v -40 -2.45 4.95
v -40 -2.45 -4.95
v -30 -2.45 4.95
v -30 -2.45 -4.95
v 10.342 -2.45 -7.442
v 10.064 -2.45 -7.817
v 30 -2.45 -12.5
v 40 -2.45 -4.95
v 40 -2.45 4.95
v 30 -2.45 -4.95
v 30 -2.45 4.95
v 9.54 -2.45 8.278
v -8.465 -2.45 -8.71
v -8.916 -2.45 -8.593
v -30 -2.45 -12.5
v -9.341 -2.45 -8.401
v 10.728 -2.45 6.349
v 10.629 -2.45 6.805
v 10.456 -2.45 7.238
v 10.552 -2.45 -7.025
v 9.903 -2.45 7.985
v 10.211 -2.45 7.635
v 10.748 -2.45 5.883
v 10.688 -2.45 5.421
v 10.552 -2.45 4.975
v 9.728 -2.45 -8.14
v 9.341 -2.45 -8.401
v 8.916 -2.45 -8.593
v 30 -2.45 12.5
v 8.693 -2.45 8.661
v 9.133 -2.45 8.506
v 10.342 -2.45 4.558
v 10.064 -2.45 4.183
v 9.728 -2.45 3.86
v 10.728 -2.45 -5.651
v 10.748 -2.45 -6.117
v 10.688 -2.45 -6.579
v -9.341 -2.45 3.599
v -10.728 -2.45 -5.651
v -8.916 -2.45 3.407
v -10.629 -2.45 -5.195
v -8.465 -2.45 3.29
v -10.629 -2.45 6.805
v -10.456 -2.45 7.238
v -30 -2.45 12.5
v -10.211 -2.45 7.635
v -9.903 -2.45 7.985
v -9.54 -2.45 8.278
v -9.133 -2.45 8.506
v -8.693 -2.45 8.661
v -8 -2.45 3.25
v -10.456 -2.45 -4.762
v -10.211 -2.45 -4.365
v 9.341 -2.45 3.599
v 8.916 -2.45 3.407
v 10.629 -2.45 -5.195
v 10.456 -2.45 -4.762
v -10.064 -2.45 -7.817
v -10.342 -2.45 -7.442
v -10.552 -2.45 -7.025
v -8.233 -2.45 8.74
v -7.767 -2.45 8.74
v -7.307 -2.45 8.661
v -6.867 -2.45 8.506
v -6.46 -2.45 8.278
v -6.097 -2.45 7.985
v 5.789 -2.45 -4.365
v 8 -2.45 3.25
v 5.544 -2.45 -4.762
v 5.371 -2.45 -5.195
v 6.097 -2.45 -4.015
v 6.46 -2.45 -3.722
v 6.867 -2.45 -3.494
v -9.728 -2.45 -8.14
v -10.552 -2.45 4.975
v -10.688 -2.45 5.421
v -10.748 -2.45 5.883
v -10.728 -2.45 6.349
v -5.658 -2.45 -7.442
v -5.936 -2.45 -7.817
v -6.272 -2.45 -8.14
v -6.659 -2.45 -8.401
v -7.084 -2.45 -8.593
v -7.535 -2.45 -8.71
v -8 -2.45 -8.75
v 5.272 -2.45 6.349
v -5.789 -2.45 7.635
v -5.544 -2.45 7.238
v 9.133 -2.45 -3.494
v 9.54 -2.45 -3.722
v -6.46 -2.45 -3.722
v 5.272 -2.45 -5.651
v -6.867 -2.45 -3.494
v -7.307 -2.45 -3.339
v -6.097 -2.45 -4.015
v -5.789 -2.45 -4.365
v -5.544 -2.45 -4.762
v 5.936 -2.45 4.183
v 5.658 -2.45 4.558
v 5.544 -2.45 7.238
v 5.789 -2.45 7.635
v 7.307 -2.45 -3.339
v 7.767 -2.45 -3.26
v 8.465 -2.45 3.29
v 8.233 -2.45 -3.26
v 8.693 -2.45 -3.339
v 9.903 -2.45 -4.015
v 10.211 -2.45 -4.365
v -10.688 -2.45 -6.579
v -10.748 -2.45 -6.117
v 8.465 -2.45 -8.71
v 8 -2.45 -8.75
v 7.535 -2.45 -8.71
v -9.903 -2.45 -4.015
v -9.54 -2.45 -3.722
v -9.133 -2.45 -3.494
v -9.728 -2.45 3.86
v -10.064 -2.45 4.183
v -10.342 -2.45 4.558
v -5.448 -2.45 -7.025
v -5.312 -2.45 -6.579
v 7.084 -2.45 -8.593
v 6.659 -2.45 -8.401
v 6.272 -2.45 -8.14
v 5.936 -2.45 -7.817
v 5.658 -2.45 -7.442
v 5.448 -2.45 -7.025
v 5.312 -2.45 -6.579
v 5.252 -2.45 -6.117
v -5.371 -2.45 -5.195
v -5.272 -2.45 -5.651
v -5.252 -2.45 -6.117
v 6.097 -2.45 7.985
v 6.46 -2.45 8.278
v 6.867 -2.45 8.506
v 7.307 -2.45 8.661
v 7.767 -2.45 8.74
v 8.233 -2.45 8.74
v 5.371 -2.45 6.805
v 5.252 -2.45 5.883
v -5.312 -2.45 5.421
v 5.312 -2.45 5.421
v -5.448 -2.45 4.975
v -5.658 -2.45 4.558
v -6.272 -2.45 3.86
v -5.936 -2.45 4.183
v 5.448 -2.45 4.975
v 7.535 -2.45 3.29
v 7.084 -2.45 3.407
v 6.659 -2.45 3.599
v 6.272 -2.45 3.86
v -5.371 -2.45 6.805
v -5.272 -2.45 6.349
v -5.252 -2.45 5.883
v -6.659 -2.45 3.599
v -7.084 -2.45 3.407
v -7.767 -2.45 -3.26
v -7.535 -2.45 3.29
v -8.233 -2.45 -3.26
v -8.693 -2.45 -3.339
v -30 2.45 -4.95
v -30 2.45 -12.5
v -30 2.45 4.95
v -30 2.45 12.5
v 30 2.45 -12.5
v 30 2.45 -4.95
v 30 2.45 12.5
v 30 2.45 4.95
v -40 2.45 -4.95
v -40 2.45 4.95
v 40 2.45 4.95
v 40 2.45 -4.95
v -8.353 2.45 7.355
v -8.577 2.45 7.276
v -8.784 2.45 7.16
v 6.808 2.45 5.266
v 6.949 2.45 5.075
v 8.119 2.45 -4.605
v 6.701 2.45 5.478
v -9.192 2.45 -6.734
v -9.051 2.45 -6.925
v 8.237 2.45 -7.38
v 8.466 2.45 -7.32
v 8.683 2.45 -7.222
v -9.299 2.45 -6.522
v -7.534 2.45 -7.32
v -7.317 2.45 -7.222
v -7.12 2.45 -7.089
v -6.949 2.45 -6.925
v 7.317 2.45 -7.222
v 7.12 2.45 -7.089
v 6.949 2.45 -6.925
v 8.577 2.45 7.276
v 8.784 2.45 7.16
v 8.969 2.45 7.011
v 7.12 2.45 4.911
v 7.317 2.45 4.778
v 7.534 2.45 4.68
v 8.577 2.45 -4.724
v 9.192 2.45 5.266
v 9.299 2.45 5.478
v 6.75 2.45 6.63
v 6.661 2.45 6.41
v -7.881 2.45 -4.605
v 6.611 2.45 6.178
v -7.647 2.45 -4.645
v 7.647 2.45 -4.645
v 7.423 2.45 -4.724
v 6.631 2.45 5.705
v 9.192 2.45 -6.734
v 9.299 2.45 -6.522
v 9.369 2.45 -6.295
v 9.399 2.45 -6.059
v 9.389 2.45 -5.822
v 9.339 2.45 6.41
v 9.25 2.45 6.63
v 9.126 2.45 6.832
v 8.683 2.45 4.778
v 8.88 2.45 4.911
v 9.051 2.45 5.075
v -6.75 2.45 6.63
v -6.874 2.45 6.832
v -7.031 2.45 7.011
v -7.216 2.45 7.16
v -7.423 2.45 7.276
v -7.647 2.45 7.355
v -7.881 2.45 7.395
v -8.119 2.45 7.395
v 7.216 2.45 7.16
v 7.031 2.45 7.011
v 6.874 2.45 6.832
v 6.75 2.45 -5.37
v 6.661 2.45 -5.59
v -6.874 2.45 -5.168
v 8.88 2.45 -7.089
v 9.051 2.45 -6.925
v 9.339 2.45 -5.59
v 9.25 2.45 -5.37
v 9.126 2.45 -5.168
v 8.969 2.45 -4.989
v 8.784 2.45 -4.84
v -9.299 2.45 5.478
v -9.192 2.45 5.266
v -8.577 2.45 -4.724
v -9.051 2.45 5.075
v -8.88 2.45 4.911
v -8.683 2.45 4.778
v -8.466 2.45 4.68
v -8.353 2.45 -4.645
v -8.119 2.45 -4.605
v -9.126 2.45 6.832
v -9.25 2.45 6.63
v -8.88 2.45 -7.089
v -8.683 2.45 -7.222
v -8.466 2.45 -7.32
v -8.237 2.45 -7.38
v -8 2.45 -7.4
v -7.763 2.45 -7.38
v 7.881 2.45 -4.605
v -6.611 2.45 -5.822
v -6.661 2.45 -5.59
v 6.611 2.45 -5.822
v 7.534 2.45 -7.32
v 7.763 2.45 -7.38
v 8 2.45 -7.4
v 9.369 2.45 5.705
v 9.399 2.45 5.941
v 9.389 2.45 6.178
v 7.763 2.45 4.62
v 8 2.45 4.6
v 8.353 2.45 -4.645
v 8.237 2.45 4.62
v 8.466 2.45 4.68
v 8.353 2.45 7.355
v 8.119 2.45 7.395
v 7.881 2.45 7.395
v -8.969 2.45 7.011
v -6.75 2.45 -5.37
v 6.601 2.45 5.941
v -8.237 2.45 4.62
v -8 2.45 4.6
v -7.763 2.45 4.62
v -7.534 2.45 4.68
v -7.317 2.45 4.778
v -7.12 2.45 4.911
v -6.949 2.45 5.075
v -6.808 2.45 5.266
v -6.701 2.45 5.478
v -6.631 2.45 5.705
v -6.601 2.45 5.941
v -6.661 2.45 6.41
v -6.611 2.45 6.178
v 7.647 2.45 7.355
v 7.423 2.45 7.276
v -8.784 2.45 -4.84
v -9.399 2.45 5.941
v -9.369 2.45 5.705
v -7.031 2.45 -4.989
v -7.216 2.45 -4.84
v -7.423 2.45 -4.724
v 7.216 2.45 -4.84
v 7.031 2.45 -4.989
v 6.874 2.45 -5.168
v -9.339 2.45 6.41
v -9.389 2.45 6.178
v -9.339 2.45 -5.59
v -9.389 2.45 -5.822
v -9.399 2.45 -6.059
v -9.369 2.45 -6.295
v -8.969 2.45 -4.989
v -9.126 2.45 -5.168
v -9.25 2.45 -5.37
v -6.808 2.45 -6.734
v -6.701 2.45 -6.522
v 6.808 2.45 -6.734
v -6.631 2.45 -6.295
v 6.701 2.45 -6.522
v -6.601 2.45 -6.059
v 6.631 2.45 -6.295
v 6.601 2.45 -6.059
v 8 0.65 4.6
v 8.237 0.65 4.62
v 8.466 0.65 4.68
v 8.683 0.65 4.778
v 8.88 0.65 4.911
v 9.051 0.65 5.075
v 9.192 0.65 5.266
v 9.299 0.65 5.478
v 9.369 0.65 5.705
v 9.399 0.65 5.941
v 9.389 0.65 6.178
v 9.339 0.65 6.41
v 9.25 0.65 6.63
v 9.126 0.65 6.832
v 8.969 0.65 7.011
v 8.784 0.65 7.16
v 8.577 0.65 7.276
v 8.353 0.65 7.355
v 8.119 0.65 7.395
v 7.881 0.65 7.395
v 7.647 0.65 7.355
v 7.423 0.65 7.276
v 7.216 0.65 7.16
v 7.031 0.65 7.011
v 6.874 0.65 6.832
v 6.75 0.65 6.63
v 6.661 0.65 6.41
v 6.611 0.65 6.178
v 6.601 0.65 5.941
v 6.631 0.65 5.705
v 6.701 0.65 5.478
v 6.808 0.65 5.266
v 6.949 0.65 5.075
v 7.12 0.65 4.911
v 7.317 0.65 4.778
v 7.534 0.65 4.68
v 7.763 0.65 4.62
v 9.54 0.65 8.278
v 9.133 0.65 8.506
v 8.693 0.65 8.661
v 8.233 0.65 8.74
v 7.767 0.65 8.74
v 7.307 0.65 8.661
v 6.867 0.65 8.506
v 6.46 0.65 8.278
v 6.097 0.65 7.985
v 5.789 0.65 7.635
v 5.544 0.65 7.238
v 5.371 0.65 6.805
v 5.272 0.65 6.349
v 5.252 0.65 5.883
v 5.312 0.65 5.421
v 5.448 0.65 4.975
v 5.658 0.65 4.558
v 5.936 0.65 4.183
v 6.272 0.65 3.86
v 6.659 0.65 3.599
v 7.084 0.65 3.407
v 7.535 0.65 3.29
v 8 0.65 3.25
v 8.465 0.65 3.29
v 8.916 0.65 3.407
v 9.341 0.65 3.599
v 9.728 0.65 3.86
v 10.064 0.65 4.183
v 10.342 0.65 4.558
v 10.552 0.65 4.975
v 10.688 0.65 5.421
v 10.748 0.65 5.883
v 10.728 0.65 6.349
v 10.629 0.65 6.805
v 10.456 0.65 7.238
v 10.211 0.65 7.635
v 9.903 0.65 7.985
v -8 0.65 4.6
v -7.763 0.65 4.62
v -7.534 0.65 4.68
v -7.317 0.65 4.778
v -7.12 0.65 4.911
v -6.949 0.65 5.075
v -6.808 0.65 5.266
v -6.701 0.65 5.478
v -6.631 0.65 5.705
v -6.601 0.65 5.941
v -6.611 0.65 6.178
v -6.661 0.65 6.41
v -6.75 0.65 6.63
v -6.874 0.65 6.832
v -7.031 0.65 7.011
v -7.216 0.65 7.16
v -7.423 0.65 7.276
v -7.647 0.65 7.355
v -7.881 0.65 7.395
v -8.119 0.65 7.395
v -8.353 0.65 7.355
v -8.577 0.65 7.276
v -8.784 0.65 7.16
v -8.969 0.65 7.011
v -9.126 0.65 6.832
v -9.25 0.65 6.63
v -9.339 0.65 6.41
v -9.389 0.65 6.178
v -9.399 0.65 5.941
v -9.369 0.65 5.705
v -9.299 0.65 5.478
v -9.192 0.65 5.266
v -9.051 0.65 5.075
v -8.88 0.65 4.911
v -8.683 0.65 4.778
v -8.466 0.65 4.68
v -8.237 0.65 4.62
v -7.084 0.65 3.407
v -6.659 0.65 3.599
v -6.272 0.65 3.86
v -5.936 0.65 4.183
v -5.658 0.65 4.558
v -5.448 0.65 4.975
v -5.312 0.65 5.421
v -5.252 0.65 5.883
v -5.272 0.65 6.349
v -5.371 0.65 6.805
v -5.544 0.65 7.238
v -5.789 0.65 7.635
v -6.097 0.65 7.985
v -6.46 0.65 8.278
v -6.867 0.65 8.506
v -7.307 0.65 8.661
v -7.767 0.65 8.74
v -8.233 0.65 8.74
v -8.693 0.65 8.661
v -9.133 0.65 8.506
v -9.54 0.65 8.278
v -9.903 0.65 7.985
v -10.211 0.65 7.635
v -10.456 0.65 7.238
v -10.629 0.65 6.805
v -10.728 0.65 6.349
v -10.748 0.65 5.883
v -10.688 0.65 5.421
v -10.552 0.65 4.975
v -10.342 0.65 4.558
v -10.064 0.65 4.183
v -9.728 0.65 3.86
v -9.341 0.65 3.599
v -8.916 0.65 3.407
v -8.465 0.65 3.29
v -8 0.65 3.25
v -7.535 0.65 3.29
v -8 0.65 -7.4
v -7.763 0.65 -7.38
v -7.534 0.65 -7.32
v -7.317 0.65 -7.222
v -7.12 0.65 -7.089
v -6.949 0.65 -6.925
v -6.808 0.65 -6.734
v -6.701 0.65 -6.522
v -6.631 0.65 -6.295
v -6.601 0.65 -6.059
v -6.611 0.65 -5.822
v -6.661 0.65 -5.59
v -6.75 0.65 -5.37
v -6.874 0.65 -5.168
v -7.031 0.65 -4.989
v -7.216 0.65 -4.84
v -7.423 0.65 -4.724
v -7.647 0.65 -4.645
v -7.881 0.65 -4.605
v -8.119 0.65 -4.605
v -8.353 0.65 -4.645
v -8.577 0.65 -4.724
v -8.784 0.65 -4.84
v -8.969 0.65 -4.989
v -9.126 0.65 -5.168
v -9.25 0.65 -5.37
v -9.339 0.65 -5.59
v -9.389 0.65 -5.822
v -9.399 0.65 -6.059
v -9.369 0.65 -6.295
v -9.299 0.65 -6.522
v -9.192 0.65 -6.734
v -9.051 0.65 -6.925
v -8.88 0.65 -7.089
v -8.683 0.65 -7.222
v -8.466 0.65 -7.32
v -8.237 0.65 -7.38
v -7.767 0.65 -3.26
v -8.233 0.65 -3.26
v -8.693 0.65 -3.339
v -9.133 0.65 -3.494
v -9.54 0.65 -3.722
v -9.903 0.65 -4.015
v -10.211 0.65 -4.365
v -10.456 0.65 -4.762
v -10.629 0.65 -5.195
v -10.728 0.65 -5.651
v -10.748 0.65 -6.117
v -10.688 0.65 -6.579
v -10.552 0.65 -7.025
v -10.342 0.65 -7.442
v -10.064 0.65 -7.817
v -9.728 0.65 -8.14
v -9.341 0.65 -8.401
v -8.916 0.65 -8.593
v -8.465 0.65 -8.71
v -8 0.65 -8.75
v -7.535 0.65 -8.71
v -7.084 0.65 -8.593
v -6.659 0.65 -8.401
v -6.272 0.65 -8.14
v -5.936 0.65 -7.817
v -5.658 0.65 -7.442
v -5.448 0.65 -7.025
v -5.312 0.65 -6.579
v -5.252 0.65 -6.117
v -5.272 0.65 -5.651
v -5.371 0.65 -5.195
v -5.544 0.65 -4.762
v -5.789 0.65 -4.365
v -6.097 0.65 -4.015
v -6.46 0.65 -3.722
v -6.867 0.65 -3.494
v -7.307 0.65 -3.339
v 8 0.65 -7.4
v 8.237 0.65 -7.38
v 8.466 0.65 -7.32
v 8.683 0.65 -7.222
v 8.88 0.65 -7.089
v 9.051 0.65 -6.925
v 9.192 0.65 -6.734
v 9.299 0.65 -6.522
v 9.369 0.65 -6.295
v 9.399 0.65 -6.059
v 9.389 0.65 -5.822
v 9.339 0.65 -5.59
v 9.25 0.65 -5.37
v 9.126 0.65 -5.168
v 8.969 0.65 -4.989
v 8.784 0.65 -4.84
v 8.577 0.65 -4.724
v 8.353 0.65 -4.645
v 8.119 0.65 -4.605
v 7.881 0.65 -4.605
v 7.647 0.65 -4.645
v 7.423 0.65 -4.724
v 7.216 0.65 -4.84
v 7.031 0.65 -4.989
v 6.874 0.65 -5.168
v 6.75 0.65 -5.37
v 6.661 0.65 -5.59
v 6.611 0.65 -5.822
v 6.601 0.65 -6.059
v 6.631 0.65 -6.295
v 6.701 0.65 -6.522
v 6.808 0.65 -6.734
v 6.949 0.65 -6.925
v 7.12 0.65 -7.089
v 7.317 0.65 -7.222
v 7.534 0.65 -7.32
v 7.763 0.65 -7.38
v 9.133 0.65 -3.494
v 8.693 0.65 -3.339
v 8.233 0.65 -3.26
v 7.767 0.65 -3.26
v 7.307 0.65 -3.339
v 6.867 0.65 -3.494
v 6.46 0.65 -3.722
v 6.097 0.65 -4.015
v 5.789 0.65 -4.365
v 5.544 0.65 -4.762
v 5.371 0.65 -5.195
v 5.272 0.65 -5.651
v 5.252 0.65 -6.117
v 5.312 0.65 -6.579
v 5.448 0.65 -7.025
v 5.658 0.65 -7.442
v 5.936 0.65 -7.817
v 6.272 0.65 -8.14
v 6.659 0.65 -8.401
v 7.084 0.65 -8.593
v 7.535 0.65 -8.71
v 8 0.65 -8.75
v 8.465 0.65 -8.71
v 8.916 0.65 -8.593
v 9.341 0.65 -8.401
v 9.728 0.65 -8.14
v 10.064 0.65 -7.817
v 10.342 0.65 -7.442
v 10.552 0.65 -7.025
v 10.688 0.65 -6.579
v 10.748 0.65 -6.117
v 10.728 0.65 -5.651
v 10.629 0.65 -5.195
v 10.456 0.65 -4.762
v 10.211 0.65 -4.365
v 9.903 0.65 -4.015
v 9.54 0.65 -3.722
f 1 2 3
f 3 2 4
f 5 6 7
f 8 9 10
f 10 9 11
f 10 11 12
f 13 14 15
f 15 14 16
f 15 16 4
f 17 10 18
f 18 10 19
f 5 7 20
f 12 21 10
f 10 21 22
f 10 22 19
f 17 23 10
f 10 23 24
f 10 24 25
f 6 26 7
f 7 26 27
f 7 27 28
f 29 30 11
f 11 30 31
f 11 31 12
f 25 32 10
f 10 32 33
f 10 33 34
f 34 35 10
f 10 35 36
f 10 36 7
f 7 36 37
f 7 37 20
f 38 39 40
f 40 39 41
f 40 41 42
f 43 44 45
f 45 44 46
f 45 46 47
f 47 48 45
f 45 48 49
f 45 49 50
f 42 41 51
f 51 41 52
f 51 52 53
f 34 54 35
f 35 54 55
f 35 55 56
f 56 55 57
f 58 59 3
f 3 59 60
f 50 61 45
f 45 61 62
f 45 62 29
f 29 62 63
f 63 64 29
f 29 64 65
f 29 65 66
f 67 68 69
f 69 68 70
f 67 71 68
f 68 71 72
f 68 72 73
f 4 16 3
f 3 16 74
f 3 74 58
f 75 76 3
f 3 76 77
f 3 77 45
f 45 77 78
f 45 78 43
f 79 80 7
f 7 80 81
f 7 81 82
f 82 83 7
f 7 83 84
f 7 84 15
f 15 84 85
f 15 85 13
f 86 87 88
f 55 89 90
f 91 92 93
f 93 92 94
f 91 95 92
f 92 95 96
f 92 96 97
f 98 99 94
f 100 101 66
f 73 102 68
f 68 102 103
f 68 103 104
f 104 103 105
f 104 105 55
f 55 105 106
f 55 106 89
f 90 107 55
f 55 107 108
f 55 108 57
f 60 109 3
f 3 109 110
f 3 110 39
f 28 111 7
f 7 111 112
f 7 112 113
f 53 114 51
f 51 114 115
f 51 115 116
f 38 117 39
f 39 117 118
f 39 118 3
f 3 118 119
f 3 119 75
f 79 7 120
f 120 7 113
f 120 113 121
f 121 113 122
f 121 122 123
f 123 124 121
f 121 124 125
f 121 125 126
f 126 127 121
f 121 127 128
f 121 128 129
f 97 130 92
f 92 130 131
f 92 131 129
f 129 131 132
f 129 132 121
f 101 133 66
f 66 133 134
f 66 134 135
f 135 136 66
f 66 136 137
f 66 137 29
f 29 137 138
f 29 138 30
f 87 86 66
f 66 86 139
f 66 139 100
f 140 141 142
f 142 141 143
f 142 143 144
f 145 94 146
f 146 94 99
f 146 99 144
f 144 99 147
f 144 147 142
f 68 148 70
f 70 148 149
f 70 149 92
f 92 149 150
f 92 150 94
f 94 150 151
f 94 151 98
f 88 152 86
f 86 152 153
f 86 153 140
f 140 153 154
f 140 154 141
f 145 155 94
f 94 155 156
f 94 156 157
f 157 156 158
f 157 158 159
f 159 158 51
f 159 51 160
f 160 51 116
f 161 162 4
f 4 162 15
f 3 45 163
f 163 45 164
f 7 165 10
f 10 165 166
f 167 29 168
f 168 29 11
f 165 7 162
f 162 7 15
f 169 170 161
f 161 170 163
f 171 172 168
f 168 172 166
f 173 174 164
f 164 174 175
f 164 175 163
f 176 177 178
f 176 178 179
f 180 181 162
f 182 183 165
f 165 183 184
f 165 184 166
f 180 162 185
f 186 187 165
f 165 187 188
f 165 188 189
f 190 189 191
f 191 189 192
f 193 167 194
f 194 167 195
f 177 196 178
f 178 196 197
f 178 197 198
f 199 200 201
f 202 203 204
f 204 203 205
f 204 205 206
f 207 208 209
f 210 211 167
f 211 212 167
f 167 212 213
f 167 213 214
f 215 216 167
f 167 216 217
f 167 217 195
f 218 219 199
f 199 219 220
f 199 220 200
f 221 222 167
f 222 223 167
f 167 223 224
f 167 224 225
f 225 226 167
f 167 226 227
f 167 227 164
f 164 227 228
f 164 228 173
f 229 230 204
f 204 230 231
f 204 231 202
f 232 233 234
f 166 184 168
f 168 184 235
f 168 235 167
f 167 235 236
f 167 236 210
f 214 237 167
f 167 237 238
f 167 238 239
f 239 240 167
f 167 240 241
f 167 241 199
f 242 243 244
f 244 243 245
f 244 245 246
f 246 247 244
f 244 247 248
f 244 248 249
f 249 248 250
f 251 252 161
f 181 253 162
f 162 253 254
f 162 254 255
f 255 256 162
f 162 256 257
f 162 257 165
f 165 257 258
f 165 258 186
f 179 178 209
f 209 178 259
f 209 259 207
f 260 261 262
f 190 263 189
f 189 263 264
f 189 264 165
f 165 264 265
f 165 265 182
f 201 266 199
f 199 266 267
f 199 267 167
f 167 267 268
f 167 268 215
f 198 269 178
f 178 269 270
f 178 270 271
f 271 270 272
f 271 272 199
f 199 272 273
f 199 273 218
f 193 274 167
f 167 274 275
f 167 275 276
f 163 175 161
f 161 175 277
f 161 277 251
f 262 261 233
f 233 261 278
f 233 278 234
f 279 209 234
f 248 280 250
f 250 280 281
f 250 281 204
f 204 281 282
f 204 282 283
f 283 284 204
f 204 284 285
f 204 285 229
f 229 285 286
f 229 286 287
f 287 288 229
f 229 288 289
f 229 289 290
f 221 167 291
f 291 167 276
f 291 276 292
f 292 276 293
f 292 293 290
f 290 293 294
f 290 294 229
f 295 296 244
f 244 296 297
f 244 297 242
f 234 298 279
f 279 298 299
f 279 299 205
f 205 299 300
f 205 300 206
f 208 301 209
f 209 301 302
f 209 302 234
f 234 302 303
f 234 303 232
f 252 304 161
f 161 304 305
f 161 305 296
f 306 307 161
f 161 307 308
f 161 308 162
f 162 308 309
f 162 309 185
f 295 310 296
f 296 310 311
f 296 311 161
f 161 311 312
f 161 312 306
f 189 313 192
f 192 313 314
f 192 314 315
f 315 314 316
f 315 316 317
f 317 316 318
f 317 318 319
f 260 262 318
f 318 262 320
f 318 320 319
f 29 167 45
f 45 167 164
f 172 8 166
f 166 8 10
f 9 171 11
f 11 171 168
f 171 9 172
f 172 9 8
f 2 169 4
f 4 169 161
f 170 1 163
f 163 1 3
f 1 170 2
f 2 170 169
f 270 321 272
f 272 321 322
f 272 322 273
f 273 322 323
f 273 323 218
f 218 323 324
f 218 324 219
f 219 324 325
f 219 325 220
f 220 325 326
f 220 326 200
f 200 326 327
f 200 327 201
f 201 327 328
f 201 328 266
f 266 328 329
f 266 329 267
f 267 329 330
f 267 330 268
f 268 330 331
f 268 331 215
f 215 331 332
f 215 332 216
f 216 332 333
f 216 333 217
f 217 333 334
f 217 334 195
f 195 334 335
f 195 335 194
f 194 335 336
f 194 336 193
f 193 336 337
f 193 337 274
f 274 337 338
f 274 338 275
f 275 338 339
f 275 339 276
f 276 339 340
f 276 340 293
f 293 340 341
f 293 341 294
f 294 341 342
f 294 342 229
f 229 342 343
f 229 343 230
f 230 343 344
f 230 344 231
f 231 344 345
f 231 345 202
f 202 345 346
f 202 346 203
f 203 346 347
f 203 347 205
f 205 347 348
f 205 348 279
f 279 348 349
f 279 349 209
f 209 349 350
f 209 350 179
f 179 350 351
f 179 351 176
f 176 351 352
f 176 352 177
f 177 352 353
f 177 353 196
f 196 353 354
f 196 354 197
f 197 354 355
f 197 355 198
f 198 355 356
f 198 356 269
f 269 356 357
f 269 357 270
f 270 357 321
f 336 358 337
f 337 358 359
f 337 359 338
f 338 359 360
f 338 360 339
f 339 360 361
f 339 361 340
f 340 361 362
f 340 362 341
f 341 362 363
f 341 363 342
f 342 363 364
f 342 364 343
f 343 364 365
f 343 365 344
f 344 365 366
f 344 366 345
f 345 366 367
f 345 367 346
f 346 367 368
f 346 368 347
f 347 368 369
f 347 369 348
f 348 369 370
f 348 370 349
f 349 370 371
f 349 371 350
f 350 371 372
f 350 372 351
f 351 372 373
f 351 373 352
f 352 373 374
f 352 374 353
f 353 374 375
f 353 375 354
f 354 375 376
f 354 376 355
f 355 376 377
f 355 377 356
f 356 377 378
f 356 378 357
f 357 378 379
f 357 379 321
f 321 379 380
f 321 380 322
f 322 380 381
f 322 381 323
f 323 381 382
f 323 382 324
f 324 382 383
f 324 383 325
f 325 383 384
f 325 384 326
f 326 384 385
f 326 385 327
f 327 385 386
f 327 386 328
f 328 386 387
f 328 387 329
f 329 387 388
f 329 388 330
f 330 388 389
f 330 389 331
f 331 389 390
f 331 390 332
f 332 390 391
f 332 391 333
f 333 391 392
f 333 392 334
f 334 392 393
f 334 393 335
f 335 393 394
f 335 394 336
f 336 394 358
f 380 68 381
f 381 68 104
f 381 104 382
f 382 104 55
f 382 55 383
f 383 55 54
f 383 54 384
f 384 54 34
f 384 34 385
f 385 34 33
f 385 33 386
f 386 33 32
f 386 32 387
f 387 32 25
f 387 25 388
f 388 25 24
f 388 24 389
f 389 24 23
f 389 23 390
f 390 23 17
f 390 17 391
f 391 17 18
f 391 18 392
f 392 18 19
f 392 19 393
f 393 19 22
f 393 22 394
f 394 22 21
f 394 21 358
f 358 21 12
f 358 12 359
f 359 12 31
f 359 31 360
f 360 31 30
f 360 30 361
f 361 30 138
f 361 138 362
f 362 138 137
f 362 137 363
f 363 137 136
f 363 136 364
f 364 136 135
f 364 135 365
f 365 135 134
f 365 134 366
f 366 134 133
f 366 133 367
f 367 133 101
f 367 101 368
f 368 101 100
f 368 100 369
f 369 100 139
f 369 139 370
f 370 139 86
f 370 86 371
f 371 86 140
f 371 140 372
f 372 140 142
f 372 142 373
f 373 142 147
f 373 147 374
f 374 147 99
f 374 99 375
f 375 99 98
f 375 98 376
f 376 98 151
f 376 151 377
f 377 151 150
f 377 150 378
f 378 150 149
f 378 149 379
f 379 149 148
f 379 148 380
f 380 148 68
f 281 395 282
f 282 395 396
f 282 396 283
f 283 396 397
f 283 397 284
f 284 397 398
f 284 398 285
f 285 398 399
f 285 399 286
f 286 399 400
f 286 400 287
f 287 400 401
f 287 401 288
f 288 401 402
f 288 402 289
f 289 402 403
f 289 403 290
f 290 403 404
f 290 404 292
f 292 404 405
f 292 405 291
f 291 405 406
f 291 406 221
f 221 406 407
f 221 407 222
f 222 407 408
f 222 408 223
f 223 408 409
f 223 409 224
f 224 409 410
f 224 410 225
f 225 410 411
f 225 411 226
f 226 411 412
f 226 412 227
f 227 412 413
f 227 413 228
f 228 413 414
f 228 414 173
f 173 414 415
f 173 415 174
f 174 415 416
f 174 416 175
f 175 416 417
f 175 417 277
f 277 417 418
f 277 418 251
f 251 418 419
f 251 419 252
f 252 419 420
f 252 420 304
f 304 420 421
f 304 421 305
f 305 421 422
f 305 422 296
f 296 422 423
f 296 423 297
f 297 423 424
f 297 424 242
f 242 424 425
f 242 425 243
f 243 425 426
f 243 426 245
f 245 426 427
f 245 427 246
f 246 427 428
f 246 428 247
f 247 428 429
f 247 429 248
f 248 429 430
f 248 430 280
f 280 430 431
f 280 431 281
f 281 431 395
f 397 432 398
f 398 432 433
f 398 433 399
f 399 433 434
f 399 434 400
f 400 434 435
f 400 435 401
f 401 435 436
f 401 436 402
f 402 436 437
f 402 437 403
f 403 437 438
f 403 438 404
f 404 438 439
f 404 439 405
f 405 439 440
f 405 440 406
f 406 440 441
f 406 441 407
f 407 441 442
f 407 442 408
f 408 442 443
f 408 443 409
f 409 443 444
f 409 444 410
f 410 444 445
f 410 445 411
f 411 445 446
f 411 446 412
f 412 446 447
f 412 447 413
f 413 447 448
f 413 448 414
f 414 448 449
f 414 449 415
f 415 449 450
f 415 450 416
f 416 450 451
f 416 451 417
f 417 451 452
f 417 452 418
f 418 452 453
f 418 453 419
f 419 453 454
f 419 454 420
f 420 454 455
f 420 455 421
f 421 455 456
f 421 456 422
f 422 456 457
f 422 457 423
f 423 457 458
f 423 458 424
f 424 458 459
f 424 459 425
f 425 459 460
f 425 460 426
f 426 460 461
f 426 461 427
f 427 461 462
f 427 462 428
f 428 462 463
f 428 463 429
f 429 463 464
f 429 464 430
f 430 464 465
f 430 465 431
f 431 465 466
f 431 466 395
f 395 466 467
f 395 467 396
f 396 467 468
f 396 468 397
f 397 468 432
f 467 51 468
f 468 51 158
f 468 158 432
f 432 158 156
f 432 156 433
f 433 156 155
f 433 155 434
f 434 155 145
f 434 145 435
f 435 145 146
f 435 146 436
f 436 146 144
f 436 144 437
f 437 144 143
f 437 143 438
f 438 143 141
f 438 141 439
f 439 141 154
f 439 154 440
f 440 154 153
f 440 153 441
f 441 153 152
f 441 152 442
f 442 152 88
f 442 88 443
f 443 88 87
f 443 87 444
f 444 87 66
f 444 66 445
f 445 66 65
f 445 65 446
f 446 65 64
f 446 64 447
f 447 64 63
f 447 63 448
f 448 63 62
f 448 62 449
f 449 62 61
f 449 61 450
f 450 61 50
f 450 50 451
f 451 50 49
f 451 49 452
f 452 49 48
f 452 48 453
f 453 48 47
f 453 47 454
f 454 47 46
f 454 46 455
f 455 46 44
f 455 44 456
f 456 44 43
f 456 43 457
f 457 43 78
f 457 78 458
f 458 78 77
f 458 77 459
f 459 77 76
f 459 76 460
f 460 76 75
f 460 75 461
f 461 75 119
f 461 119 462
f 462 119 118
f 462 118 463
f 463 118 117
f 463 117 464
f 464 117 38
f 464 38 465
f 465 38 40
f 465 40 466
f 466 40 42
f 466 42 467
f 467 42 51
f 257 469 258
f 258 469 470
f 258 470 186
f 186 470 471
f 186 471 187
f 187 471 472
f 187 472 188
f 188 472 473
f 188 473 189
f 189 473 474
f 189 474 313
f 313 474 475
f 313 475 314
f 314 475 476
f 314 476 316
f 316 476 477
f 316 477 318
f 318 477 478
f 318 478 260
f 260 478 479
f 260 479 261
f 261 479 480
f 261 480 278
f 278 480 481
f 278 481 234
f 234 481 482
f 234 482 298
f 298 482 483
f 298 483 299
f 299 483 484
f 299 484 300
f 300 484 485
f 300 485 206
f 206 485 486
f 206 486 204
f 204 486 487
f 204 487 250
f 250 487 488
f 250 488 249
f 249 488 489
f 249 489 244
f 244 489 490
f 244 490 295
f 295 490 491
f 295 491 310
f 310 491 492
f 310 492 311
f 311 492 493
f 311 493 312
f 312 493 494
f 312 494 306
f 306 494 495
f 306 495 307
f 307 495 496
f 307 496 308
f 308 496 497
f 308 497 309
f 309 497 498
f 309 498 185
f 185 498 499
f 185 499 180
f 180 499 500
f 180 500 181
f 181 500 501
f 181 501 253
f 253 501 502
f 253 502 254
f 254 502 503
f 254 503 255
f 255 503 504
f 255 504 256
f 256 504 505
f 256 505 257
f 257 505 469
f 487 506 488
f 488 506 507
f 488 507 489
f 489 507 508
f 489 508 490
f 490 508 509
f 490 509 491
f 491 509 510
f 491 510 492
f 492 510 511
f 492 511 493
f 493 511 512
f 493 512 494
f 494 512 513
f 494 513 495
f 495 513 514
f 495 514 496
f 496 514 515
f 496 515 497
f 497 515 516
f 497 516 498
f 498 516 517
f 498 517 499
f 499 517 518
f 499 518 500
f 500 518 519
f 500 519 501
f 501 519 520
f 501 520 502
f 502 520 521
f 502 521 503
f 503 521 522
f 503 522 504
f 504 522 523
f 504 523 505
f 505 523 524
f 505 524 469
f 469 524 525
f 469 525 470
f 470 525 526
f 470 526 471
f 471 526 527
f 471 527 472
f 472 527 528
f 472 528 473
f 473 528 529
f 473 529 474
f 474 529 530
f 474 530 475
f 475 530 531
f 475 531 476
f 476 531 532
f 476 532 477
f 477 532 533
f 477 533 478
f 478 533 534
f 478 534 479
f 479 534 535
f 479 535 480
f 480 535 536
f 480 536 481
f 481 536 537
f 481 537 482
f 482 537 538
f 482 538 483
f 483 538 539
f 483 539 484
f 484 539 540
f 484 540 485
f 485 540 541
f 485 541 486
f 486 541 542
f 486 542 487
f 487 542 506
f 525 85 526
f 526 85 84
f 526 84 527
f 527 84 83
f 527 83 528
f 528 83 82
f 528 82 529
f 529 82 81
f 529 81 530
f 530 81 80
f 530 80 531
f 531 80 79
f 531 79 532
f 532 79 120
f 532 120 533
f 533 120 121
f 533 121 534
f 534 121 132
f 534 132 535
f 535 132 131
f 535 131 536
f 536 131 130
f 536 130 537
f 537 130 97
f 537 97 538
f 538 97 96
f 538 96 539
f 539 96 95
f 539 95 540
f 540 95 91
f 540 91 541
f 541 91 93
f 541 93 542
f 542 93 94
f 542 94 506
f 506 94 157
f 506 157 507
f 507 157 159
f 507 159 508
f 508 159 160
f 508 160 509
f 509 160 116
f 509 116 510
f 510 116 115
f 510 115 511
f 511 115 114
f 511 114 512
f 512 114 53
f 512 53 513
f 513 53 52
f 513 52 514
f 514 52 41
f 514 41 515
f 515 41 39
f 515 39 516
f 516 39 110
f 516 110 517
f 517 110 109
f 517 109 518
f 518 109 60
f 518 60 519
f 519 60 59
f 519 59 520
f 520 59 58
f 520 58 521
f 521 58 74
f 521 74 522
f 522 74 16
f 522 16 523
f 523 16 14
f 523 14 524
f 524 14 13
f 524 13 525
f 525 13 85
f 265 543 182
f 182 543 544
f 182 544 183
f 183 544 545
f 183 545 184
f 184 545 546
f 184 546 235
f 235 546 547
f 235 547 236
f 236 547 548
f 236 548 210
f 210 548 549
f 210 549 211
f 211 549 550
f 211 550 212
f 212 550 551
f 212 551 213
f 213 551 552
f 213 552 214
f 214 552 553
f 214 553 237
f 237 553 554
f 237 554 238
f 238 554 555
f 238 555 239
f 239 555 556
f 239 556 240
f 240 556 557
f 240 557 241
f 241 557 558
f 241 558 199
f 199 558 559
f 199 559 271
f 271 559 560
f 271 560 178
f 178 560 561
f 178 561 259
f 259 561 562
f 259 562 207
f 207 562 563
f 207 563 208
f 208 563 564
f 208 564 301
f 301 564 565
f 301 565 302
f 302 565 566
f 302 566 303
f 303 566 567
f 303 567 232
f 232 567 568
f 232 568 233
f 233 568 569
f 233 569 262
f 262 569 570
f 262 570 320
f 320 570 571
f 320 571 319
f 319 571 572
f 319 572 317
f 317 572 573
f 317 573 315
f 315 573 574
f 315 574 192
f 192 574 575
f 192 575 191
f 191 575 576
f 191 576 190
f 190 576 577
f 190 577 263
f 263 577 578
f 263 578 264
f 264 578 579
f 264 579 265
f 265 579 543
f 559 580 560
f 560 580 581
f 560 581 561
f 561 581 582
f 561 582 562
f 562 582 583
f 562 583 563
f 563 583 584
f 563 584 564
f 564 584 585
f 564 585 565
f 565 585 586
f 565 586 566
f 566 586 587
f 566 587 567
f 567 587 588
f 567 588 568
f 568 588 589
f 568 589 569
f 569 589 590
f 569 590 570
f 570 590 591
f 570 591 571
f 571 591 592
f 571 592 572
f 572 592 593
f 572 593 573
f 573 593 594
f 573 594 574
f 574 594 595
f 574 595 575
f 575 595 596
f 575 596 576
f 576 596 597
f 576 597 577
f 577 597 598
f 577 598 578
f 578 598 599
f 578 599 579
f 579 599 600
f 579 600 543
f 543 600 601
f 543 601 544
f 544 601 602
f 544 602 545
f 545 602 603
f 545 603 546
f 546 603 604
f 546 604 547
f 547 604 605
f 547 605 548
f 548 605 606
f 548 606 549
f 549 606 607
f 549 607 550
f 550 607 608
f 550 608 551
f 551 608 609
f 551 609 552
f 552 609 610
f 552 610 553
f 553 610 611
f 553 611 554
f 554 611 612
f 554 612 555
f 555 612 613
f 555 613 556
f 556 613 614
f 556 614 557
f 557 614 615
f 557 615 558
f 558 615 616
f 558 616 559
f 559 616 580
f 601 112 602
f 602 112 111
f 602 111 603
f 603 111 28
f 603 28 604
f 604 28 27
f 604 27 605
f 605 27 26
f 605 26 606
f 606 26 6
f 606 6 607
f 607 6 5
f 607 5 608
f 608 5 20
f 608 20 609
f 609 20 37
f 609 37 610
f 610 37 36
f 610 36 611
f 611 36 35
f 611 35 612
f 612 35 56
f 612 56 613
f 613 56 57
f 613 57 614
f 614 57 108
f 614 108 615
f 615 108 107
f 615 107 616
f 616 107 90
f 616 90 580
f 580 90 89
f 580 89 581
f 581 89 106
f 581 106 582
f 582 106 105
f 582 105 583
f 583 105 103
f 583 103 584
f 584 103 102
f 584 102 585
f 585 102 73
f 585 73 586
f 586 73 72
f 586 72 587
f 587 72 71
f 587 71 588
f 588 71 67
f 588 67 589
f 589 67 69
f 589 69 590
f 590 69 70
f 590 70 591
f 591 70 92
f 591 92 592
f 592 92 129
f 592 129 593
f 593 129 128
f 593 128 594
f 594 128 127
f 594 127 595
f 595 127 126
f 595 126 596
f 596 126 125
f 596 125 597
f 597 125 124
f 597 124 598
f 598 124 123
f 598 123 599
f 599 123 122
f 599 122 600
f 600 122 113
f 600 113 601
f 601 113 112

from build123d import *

# Parameters (mm, degrees)
SKETCH1_W                       = 25
SKETCH1_H                       = 4.9
BOSS_EXTRUDE1_DEPTH             = 30
SKETCH2_W                       = 9.9
SKETCH2_H                       = 4.9
BOSS_EXTRUDE2_DEPTH             = 10
CBORE_FOR_M3_SBHCS2_D           = 2.8
CBORE_FOR_M3_SBHCS2_CBORE_D     = 5.5
CBORE_FOR_M3_SBHCS2_CBORE_DEPTH = 3.1


with BuildPart() as part:
    # Sketch1 → Boss-Extrude1 (new, symmetric)
    with BuildSketch(Plane(origin=(0, 0, 0), x_dir=(0, 0, -1), z_dir=(1, 0, 0))):
        Rectangle(SKETCH1_W, SKETCH1_H)
    extrude(amount=BOSS_EXTRUDE1_DEPTH, both=True)

    # Sketch2 → Boss-Extrude2 (add)
    with BuildSketch(Plane(origin=(30, 0, 0), x_dir=(0, 0, -1), z_dir=(1, 0, 0))):
        Rectangle(SKETCH2_W, SKETCH2_H)
    boss_extrude2 = extrude(amount=BOSS_EXTRUDE2_DEPTH)

    # Mirror1: Boss-Extrude2 across plane
    add(boss_extrude2.mirror(Plane(origin=(0, 0, 0), x_dir=(0, 0, 1), z_dir=(1, 0, 0))))

    # CBORE for M3 SBHCS2 (through all)
    with Locations(Plane(origin=(0, -2.45, 0), x_dir=(-1, 0, 0), z_dir=(0, -1, 0))):
        with Locations((-8, 6), (8, 6), (8, -6), (-8, -6)):
            CounterBoreHole(CBORE_FOR_M3_SBHCS2_D / 2, CBORE_FOR_M3_SBHCS2_CBORE_D / 2, CBORE_FOR_M3_SBHCS2_CBORE_DEPTH)


solid = part.part
